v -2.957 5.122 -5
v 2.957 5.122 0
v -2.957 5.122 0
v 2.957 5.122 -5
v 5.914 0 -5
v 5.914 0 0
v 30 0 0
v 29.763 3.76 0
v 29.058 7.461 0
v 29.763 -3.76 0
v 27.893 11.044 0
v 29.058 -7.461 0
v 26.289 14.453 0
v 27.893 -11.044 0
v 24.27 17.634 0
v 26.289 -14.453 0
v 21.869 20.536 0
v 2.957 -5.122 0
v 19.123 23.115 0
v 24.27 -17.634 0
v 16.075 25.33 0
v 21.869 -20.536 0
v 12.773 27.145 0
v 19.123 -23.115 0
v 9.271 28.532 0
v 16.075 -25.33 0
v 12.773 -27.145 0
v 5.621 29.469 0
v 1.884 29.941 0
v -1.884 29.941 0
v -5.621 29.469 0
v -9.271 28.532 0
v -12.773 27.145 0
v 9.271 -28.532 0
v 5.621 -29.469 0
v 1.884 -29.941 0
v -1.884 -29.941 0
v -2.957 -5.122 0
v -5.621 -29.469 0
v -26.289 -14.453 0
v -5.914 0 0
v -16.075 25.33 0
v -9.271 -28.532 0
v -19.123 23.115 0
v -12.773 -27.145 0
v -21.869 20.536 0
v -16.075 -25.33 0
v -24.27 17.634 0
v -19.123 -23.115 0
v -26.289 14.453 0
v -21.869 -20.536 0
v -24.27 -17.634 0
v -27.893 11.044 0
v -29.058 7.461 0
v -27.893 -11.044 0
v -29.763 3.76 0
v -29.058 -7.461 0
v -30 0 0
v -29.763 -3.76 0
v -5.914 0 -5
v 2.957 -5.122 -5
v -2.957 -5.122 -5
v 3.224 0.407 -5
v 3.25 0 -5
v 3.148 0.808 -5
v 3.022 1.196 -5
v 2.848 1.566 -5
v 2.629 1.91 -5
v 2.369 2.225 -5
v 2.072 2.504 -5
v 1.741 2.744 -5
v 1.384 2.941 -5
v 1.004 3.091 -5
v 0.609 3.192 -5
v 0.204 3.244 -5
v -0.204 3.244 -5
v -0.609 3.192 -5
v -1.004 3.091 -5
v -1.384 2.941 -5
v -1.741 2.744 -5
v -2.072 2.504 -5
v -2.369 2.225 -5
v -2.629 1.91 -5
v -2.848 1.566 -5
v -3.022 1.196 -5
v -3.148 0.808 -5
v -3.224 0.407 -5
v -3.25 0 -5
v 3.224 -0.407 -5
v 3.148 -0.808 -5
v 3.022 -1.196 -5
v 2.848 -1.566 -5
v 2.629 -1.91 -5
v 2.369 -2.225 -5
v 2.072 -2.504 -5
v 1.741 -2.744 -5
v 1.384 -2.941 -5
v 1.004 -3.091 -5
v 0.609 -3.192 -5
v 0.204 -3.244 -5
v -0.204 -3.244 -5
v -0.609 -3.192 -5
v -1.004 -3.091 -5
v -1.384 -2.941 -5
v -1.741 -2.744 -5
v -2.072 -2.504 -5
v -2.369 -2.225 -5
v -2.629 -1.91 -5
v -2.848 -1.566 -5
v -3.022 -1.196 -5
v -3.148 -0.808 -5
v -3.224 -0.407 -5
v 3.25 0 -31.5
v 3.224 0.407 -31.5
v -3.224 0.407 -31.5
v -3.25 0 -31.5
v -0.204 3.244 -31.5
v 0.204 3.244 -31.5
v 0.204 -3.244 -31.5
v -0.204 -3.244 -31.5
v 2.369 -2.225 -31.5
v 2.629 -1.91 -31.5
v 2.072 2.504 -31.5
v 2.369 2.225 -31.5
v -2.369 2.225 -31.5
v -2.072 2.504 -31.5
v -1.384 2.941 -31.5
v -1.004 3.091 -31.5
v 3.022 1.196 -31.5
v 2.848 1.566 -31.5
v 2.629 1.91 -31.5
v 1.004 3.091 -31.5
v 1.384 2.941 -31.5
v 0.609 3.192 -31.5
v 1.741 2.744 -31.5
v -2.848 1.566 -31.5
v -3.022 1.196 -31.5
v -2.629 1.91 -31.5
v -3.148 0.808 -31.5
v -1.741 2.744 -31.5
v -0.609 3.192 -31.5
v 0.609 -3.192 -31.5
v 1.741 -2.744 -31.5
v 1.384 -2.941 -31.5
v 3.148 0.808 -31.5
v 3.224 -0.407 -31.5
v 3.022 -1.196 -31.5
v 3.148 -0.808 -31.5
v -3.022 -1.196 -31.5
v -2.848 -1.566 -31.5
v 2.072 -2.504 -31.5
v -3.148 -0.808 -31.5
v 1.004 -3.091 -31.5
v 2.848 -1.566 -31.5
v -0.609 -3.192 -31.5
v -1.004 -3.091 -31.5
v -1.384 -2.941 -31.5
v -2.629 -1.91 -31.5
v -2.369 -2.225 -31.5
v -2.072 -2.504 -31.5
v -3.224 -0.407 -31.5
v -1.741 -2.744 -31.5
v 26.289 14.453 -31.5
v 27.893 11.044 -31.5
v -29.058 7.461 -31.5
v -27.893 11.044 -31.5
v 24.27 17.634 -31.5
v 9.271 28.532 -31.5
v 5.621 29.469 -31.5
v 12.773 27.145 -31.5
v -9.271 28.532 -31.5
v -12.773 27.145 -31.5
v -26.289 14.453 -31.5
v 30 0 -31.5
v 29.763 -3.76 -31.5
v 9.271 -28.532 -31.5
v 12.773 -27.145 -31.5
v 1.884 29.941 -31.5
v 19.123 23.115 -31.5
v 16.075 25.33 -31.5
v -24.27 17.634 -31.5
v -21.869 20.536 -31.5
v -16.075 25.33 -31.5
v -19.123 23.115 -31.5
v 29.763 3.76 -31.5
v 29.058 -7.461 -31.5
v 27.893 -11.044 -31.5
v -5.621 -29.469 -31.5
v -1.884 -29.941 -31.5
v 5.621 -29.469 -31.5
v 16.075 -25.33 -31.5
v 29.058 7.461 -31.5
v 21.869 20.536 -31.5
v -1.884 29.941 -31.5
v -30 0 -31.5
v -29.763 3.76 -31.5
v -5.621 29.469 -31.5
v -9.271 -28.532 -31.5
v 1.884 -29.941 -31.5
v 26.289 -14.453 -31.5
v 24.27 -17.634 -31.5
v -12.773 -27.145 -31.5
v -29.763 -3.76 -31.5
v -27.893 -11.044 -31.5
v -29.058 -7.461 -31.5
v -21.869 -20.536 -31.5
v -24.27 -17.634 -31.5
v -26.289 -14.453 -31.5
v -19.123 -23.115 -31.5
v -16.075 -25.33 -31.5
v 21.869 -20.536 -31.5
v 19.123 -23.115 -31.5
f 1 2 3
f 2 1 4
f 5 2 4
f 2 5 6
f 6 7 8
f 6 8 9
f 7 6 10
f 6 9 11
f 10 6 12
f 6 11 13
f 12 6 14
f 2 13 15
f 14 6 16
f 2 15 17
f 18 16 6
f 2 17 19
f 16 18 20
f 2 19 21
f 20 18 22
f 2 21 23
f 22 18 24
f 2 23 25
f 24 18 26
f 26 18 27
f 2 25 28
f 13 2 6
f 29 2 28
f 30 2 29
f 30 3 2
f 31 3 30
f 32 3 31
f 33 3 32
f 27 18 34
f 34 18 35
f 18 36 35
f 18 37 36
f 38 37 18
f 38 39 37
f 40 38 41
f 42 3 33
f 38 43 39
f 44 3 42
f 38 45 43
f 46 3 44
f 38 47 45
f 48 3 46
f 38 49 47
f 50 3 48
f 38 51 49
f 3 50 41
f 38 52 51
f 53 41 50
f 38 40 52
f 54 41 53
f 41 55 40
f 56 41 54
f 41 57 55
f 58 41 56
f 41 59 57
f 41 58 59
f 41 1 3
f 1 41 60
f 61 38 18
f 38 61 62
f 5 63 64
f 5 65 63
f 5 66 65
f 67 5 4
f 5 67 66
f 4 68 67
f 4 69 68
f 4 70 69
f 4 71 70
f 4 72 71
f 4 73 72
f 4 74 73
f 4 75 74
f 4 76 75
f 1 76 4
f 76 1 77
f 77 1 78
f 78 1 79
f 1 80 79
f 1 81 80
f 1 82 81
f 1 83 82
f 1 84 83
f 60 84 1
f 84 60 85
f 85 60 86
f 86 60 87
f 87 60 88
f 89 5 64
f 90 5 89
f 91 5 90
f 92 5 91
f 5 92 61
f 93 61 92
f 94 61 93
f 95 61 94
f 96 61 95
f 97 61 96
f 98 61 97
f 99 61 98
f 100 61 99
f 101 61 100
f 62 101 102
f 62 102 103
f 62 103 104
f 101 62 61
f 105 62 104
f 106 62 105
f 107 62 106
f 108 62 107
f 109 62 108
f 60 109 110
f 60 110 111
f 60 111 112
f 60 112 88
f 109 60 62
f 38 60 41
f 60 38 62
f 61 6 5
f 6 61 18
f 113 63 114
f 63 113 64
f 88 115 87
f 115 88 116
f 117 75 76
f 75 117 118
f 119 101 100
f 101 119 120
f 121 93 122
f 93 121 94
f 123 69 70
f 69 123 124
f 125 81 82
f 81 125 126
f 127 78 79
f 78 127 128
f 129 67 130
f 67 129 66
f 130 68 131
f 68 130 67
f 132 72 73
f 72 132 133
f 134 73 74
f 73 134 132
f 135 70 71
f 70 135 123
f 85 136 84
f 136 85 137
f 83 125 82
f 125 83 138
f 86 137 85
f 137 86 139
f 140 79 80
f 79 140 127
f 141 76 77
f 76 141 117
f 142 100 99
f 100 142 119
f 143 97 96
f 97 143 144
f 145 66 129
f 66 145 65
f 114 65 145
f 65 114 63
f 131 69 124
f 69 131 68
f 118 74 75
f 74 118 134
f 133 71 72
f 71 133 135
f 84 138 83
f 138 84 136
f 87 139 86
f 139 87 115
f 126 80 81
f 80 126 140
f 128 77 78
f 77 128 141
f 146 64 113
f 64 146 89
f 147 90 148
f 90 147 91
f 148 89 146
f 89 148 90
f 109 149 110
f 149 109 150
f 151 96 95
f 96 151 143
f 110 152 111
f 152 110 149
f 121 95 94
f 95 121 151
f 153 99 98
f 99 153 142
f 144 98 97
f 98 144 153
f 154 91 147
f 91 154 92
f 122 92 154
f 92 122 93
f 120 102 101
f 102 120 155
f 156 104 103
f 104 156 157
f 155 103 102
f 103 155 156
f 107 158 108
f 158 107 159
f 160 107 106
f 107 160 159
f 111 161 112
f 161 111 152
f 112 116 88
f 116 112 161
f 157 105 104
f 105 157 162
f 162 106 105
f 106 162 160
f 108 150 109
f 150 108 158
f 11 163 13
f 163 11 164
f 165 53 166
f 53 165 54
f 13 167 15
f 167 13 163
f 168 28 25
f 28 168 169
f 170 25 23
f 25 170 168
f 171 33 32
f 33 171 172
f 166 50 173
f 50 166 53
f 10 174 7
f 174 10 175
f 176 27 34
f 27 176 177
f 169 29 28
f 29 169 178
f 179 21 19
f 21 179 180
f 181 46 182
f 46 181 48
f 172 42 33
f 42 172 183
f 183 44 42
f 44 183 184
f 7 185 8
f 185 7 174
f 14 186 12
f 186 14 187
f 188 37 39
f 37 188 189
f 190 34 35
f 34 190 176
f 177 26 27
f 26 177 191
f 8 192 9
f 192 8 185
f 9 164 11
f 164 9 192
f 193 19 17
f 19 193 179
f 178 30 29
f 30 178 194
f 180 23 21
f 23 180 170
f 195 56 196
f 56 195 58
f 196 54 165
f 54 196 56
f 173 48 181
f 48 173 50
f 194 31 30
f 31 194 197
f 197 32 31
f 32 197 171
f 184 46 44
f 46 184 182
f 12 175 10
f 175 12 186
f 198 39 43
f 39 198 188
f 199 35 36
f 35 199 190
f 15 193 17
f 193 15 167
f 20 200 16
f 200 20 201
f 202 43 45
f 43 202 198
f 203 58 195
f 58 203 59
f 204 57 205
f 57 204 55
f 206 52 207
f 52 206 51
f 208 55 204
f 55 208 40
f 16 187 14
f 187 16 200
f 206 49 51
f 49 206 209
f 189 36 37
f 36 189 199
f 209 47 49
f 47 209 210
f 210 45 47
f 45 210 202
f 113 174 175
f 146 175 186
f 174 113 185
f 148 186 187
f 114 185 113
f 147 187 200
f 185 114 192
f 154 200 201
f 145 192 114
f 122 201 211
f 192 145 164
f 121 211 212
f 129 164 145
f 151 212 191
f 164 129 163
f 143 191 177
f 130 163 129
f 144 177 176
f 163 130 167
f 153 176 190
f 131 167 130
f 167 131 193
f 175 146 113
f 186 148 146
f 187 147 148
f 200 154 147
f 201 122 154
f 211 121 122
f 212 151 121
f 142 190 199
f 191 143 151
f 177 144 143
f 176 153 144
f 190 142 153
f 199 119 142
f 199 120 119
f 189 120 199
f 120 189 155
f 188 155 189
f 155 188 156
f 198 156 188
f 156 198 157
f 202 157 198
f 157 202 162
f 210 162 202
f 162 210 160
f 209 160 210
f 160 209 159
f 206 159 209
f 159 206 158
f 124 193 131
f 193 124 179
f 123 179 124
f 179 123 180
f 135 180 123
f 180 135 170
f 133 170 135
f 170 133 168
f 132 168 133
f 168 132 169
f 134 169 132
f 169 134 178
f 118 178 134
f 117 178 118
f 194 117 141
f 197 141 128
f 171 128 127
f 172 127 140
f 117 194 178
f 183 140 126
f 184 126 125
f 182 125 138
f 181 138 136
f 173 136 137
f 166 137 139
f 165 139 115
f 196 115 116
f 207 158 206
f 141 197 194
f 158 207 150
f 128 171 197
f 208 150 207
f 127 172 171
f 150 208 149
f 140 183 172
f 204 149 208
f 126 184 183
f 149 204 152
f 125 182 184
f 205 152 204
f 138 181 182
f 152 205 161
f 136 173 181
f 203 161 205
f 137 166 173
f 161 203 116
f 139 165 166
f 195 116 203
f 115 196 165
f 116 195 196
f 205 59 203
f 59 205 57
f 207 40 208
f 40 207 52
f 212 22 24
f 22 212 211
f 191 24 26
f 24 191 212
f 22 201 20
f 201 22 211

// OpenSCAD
$fn = 50;

difference() {
	union() {
		translate(v = [0, 0, -31.5]) {
			cylinder(h = 31.5, r = 30.0);
		}
	}
	union() {
		translate(v = [0, 0, 0]) {
			rotate(a = [0, 0, 0]) {
				difference() {
					union() {
						translate(v = [0, 0, -5]) {
							linear_extrude(height = 5) {
								polygon(points = [[5.914249999999999, 0.0], [2.957125, 5.1218907443321156], [-2.9571249999999982, 5.1218907443321156], [-5.914249999999999, 7.242867331857232e-16], [-2.9571250000000022, -5.121890744332115], [2.9571249999999956, -5.121890744332118]]);
							}
						}
					}
					union();
				}
			}
		}
		#translate(v = [0, 0, -100.0]) {
			cylinder(h = 200, r = 3.25);
		}
	}
}
